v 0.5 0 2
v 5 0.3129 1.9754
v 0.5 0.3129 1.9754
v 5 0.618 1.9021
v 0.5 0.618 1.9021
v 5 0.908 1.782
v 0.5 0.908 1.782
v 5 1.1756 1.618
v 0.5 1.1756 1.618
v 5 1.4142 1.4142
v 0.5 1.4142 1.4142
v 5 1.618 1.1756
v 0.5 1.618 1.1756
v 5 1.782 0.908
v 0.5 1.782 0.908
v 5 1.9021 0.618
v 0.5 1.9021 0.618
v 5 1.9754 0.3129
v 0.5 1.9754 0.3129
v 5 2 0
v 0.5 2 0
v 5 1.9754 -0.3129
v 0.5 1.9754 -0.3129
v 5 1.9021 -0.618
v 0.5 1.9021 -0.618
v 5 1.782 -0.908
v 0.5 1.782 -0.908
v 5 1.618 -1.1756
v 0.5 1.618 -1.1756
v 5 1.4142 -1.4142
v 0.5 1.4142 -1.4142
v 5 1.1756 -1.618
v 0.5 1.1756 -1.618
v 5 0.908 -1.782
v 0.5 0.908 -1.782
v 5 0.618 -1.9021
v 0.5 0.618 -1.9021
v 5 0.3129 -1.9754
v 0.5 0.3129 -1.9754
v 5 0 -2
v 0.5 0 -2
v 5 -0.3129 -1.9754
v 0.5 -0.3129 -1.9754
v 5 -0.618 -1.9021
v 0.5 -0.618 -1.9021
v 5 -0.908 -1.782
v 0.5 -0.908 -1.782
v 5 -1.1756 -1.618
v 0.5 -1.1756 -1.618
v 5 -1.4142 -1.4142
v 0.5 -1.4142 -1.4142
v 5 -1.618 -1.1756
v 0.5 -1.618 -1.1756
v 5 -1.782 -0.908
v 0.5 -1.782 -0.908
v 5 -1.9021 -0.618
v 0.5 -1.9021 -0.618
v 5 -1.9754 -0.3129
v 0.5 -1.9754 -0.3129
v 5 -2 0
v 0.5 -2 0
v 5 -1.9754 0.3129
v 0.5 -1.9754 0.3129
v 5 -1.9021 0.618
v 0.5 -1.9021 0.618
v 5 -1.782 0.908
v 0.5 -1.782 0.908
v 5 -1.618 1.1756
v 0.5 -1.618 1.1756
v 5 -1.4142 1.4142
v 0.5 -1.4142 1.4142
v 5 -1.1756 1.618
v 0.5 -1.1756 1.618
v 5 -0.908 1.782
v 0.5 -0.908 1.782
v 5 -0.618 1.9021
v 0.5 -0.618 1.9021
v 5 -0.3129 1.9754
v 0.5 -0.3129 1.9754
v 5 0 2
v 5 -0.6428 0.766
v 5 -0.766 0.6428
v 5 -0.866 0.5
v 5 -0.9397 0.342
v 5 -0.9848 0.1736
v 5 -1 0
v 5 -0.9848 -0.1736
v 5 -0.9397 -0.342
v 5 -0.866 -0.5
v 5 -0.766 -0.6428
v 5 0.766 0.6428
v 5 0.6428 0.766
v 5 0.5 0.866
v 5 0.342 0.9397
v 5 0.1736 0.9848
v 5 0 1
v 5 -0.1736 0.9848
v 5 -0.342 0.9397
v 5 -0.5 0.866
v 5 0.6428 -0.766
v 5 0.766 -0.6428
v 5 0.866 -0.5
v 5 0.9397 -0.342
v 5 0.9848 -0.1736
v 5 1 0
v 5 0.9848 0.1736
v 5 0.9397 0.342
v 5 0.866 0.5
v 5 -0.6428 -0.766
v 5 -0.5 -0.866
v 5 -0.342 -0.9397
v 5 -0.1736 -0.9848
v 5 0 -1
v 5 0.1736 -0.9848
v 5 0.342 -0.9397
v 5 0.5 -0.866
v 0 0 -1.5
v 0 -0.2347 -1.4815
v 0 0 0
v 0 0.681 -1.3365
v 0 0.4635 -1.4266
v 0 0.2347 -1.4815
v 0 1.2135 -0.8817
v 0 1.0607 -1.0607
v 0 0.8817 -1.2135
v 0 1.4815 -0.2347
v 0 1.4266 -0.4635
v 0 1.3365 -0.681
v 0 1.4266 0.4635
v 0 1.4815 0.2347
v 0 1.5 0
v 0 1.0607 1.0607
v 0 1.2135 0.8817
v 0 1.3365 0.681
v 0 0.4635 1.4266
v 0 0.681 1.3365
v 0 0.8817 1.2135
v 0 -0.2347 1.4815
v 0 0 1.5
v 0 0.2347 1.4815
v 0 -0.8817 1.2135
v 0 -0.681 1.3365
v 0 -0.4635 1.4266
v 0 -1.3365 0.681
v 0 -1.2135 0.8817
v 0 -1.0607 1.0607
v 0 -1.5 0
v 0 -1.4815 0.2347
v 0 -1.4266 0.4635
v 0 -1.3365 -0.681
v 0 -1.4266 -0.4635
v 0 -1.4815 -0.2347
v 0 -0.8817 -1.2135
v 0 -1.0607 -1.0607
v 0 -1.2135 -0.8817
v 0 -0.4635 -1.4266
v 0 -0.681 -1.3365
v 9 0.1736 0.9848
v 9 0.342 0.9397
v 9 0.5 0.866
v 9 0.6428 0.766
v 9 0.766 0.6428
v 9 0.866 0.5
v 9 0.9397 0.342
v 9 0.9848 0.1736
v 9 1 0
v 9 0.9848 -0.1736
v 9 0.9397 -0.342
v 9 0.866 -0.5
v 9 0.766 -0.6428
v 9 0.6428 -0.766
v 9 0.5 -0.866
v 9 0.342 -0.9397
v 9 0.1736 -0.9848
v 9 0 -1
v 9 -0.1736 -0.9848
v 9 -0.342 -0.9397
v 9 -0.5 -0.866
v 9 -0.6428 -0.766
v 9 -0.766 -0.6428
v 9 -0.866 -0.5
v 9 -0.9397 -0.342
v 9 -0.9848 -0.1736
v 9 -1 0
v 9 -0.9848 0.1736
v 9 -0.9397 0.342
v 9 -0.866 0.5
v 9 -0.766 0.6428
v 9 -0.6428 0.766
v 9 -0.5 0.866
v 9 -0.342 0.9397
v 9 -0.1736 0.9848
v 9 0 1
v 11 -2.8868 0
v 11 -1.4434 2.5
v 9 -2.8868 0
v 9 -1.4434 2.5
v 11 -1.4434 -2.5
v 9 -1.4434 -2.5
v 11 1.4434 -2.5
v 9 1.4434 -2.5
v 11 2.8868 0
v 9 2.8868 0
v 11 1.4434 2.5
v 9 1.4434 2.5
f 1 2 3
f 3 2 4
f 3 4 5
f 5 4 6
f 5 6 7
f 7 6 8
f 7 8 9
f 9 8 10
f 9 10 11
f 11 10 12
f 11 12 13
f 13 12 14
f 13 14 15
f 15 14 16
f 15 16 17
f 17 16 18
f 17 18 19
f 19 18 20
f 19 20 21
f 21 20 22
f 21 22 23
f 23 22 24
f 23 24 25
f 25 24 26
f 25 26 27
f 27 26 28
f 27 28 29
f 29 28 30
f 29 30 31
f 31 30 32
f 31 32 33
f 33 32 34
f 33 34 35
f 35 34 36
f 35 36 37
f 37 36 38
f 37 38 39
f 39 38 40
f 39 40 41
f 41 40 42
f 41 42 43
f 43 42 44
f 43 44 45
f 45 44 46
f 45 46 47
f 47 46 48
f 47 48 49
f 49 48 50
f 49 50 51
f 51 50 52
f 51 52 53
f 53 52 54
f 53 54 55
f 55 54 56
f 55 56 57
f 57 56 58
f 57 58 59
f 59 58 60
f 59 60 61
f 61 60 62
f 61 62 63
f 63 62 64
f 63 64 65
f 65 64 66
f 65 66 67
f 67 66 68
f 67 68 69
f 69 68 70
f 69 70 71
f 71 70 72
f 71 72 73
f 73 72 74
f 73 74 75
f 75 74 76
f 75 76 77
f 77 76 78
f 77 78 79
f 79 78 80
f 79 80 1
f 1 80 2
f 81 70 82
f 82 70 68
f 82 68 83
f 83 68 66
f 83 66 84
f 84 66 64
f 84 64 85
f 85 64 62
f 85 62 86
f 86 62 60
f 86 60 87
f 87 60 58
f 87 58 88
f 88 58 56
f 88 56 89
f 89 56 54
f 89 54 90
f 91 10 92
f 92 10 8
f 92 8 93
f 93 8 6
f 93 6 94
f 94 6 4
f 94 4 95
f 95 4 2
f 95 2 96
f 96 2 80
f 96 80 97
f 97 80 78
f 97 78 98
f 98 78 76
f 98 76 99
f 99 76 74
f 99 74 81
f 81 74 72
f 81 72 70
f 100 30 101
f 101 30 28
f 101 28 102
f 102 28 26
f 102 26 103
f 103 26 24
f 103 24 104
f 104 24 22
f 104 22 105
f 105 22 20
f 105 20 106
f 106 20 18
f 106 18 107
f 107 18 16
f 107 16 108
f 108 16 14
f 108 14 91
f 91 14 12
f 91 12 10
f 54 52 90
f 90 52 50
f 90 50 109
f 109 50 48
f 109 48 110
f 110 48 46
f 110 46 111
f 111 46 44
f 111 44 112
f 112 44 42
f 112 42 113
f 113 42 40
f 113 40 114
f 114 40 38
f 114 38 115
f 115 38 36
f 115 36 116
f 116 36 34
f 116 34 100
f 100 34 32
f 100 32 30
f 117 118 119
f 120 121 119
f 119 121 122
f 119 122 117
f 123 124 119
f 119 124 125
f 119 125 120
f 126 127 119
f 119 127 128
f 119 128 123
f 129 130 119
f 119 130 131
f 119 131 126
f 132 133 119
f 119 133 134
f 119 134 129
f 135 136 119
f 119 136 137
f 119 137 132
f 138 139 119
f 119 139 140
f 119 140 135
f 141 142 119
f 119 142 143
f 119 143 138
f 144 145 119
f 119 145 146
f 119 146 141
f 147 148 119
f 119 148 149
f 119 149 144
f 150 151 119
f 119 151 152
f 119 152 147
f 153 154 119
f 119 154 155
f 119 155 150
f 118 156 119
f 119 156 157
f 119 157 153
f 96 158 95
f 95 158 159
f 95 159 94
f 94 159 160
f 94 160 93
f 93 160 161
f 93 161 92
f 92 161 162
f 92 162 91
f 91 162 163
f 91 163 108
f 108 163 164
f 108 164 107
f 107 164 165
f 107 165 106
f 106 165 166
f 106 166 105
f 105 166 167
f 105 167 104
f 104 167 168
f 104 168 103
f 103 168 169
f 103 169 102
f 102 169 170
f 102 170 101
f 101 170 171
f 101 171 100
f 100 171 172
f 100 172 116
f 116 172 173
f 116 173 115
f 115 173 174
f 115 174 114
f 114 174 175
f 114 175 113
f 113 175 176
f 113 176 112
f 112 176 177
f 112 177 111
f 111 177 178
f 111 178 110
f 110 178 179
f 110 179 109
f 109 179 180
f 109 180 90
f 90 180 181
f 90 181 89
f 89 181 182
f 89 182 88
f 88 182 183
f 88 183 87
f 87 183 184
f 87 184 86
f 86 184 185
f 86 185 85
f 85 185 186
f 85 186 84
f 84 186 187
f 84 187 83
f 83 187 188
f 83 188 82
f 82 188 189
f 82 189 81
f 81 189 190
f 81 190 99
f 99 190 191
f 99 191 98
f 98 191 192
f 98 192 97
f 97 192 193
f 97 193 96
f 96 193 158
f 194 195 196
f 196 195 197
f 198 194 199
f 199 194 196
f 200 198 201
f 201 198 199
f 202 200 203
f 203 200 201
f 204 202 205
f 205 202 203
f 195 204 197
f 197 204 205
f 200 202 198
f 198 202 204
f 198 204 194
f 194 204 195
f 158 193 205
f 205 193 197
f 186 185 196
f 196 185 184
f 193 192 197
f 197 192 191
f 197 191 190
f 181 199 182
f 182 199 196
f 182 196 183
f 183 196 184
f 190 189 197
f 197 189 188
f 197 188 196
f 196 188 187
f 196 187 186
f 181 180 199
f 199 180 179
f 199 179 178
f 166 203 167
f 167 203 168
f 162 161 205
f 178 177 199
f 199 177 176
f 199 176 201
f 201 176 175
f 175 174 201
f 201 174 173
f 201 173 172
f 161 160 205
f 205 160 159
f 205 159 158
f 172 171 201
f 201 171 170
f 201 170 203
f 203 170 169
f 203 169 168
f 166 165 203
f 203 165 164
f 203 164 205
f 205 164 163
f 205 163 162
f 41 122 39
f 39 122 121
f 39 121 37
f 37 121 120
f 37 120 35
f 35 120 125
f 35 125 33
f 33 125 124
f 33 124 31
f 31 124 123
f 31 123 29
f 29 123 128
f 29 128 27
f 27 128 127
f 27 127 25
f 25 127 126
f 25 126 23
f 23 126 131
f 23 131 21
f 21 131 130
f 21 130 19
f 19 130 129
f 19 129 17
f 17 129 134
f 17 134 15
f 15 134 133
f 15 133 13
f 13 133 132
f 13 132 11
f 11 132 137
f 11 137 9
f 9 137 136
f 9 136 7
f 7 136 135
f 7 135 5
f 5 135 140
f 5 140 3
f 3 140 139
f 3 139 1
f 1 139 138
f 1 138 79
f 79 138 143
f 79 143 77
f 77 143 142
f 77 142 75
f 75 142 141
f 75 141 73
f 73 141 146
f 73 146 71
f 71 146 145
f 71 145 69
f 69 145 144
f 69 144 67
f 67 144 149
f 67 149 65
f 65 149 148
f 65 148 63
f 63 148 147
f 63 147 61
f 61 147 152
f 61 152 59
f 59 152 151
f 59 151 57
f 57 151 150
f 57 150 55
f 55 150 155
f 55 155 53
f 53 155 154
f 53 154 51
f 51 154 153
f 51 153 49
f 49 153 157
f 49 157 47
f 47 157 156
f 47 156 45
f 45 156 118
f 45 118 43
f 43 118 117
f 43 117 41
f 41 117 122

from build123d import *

# Parameters (mm, degrees)
SKETCH1_R           = 2
BOSS_EXTRUDE1_DEPTH = 5
SKETCH3_R           = 1
BOSS_EXTRUDE2_DEPTH = 4
BOSS_EXTRUDE3_DEPTH = 2
CHAMFER1_SIZE       = 0.5


with BuildPart() as part:
    # Sketch1 → Boss-Extrude1 (new body)
    with BuildSketch(Plane(origin=(0, 0, 0), x_dir=(0, 0, -1), z_dir=(1, 0, 0))):
        Circle(SKETCH1_R)
    extrude(amount=BOSS_EXTRUDE1_DEPTH)

    # Sketch3 → Boss-Extrude2 (add)
    with BuildSketch(Plane(origin=(5, 0, 0), x_dir=(0, 0, -1), z_dir=(1, 0, 0))):
        Circle(SKETCH3_R)
    extrude(amount=BOSS_EXTRUDE2_DEPTH)

    # Sketch4 → Boss-Extrude3 (add)
    with BuildSketch(Plane(origin=(9, 0, 0), x_dir=(0, 0, -1), z_dir=(1, 0, 0))):
        Polygon((0, -2.886751346), (2.5, -1.443375673), (2.5, 1.443375673), (0, 2.886751346), (-2.5, 1.443375673), (-2.5, -1.443375673), align=None)
    extrude(amount=BOSS_EXTRUDE3_DEPTH)

    # Chamfer1
    chamfer1_edges = [part.edges().sort_by_distance(p)[0] for p in [
        (0, 0, 2),
    ]]
    chamfer(chamfer1_edges, length=CHAMFER1_SIZE)


solid = part.part
